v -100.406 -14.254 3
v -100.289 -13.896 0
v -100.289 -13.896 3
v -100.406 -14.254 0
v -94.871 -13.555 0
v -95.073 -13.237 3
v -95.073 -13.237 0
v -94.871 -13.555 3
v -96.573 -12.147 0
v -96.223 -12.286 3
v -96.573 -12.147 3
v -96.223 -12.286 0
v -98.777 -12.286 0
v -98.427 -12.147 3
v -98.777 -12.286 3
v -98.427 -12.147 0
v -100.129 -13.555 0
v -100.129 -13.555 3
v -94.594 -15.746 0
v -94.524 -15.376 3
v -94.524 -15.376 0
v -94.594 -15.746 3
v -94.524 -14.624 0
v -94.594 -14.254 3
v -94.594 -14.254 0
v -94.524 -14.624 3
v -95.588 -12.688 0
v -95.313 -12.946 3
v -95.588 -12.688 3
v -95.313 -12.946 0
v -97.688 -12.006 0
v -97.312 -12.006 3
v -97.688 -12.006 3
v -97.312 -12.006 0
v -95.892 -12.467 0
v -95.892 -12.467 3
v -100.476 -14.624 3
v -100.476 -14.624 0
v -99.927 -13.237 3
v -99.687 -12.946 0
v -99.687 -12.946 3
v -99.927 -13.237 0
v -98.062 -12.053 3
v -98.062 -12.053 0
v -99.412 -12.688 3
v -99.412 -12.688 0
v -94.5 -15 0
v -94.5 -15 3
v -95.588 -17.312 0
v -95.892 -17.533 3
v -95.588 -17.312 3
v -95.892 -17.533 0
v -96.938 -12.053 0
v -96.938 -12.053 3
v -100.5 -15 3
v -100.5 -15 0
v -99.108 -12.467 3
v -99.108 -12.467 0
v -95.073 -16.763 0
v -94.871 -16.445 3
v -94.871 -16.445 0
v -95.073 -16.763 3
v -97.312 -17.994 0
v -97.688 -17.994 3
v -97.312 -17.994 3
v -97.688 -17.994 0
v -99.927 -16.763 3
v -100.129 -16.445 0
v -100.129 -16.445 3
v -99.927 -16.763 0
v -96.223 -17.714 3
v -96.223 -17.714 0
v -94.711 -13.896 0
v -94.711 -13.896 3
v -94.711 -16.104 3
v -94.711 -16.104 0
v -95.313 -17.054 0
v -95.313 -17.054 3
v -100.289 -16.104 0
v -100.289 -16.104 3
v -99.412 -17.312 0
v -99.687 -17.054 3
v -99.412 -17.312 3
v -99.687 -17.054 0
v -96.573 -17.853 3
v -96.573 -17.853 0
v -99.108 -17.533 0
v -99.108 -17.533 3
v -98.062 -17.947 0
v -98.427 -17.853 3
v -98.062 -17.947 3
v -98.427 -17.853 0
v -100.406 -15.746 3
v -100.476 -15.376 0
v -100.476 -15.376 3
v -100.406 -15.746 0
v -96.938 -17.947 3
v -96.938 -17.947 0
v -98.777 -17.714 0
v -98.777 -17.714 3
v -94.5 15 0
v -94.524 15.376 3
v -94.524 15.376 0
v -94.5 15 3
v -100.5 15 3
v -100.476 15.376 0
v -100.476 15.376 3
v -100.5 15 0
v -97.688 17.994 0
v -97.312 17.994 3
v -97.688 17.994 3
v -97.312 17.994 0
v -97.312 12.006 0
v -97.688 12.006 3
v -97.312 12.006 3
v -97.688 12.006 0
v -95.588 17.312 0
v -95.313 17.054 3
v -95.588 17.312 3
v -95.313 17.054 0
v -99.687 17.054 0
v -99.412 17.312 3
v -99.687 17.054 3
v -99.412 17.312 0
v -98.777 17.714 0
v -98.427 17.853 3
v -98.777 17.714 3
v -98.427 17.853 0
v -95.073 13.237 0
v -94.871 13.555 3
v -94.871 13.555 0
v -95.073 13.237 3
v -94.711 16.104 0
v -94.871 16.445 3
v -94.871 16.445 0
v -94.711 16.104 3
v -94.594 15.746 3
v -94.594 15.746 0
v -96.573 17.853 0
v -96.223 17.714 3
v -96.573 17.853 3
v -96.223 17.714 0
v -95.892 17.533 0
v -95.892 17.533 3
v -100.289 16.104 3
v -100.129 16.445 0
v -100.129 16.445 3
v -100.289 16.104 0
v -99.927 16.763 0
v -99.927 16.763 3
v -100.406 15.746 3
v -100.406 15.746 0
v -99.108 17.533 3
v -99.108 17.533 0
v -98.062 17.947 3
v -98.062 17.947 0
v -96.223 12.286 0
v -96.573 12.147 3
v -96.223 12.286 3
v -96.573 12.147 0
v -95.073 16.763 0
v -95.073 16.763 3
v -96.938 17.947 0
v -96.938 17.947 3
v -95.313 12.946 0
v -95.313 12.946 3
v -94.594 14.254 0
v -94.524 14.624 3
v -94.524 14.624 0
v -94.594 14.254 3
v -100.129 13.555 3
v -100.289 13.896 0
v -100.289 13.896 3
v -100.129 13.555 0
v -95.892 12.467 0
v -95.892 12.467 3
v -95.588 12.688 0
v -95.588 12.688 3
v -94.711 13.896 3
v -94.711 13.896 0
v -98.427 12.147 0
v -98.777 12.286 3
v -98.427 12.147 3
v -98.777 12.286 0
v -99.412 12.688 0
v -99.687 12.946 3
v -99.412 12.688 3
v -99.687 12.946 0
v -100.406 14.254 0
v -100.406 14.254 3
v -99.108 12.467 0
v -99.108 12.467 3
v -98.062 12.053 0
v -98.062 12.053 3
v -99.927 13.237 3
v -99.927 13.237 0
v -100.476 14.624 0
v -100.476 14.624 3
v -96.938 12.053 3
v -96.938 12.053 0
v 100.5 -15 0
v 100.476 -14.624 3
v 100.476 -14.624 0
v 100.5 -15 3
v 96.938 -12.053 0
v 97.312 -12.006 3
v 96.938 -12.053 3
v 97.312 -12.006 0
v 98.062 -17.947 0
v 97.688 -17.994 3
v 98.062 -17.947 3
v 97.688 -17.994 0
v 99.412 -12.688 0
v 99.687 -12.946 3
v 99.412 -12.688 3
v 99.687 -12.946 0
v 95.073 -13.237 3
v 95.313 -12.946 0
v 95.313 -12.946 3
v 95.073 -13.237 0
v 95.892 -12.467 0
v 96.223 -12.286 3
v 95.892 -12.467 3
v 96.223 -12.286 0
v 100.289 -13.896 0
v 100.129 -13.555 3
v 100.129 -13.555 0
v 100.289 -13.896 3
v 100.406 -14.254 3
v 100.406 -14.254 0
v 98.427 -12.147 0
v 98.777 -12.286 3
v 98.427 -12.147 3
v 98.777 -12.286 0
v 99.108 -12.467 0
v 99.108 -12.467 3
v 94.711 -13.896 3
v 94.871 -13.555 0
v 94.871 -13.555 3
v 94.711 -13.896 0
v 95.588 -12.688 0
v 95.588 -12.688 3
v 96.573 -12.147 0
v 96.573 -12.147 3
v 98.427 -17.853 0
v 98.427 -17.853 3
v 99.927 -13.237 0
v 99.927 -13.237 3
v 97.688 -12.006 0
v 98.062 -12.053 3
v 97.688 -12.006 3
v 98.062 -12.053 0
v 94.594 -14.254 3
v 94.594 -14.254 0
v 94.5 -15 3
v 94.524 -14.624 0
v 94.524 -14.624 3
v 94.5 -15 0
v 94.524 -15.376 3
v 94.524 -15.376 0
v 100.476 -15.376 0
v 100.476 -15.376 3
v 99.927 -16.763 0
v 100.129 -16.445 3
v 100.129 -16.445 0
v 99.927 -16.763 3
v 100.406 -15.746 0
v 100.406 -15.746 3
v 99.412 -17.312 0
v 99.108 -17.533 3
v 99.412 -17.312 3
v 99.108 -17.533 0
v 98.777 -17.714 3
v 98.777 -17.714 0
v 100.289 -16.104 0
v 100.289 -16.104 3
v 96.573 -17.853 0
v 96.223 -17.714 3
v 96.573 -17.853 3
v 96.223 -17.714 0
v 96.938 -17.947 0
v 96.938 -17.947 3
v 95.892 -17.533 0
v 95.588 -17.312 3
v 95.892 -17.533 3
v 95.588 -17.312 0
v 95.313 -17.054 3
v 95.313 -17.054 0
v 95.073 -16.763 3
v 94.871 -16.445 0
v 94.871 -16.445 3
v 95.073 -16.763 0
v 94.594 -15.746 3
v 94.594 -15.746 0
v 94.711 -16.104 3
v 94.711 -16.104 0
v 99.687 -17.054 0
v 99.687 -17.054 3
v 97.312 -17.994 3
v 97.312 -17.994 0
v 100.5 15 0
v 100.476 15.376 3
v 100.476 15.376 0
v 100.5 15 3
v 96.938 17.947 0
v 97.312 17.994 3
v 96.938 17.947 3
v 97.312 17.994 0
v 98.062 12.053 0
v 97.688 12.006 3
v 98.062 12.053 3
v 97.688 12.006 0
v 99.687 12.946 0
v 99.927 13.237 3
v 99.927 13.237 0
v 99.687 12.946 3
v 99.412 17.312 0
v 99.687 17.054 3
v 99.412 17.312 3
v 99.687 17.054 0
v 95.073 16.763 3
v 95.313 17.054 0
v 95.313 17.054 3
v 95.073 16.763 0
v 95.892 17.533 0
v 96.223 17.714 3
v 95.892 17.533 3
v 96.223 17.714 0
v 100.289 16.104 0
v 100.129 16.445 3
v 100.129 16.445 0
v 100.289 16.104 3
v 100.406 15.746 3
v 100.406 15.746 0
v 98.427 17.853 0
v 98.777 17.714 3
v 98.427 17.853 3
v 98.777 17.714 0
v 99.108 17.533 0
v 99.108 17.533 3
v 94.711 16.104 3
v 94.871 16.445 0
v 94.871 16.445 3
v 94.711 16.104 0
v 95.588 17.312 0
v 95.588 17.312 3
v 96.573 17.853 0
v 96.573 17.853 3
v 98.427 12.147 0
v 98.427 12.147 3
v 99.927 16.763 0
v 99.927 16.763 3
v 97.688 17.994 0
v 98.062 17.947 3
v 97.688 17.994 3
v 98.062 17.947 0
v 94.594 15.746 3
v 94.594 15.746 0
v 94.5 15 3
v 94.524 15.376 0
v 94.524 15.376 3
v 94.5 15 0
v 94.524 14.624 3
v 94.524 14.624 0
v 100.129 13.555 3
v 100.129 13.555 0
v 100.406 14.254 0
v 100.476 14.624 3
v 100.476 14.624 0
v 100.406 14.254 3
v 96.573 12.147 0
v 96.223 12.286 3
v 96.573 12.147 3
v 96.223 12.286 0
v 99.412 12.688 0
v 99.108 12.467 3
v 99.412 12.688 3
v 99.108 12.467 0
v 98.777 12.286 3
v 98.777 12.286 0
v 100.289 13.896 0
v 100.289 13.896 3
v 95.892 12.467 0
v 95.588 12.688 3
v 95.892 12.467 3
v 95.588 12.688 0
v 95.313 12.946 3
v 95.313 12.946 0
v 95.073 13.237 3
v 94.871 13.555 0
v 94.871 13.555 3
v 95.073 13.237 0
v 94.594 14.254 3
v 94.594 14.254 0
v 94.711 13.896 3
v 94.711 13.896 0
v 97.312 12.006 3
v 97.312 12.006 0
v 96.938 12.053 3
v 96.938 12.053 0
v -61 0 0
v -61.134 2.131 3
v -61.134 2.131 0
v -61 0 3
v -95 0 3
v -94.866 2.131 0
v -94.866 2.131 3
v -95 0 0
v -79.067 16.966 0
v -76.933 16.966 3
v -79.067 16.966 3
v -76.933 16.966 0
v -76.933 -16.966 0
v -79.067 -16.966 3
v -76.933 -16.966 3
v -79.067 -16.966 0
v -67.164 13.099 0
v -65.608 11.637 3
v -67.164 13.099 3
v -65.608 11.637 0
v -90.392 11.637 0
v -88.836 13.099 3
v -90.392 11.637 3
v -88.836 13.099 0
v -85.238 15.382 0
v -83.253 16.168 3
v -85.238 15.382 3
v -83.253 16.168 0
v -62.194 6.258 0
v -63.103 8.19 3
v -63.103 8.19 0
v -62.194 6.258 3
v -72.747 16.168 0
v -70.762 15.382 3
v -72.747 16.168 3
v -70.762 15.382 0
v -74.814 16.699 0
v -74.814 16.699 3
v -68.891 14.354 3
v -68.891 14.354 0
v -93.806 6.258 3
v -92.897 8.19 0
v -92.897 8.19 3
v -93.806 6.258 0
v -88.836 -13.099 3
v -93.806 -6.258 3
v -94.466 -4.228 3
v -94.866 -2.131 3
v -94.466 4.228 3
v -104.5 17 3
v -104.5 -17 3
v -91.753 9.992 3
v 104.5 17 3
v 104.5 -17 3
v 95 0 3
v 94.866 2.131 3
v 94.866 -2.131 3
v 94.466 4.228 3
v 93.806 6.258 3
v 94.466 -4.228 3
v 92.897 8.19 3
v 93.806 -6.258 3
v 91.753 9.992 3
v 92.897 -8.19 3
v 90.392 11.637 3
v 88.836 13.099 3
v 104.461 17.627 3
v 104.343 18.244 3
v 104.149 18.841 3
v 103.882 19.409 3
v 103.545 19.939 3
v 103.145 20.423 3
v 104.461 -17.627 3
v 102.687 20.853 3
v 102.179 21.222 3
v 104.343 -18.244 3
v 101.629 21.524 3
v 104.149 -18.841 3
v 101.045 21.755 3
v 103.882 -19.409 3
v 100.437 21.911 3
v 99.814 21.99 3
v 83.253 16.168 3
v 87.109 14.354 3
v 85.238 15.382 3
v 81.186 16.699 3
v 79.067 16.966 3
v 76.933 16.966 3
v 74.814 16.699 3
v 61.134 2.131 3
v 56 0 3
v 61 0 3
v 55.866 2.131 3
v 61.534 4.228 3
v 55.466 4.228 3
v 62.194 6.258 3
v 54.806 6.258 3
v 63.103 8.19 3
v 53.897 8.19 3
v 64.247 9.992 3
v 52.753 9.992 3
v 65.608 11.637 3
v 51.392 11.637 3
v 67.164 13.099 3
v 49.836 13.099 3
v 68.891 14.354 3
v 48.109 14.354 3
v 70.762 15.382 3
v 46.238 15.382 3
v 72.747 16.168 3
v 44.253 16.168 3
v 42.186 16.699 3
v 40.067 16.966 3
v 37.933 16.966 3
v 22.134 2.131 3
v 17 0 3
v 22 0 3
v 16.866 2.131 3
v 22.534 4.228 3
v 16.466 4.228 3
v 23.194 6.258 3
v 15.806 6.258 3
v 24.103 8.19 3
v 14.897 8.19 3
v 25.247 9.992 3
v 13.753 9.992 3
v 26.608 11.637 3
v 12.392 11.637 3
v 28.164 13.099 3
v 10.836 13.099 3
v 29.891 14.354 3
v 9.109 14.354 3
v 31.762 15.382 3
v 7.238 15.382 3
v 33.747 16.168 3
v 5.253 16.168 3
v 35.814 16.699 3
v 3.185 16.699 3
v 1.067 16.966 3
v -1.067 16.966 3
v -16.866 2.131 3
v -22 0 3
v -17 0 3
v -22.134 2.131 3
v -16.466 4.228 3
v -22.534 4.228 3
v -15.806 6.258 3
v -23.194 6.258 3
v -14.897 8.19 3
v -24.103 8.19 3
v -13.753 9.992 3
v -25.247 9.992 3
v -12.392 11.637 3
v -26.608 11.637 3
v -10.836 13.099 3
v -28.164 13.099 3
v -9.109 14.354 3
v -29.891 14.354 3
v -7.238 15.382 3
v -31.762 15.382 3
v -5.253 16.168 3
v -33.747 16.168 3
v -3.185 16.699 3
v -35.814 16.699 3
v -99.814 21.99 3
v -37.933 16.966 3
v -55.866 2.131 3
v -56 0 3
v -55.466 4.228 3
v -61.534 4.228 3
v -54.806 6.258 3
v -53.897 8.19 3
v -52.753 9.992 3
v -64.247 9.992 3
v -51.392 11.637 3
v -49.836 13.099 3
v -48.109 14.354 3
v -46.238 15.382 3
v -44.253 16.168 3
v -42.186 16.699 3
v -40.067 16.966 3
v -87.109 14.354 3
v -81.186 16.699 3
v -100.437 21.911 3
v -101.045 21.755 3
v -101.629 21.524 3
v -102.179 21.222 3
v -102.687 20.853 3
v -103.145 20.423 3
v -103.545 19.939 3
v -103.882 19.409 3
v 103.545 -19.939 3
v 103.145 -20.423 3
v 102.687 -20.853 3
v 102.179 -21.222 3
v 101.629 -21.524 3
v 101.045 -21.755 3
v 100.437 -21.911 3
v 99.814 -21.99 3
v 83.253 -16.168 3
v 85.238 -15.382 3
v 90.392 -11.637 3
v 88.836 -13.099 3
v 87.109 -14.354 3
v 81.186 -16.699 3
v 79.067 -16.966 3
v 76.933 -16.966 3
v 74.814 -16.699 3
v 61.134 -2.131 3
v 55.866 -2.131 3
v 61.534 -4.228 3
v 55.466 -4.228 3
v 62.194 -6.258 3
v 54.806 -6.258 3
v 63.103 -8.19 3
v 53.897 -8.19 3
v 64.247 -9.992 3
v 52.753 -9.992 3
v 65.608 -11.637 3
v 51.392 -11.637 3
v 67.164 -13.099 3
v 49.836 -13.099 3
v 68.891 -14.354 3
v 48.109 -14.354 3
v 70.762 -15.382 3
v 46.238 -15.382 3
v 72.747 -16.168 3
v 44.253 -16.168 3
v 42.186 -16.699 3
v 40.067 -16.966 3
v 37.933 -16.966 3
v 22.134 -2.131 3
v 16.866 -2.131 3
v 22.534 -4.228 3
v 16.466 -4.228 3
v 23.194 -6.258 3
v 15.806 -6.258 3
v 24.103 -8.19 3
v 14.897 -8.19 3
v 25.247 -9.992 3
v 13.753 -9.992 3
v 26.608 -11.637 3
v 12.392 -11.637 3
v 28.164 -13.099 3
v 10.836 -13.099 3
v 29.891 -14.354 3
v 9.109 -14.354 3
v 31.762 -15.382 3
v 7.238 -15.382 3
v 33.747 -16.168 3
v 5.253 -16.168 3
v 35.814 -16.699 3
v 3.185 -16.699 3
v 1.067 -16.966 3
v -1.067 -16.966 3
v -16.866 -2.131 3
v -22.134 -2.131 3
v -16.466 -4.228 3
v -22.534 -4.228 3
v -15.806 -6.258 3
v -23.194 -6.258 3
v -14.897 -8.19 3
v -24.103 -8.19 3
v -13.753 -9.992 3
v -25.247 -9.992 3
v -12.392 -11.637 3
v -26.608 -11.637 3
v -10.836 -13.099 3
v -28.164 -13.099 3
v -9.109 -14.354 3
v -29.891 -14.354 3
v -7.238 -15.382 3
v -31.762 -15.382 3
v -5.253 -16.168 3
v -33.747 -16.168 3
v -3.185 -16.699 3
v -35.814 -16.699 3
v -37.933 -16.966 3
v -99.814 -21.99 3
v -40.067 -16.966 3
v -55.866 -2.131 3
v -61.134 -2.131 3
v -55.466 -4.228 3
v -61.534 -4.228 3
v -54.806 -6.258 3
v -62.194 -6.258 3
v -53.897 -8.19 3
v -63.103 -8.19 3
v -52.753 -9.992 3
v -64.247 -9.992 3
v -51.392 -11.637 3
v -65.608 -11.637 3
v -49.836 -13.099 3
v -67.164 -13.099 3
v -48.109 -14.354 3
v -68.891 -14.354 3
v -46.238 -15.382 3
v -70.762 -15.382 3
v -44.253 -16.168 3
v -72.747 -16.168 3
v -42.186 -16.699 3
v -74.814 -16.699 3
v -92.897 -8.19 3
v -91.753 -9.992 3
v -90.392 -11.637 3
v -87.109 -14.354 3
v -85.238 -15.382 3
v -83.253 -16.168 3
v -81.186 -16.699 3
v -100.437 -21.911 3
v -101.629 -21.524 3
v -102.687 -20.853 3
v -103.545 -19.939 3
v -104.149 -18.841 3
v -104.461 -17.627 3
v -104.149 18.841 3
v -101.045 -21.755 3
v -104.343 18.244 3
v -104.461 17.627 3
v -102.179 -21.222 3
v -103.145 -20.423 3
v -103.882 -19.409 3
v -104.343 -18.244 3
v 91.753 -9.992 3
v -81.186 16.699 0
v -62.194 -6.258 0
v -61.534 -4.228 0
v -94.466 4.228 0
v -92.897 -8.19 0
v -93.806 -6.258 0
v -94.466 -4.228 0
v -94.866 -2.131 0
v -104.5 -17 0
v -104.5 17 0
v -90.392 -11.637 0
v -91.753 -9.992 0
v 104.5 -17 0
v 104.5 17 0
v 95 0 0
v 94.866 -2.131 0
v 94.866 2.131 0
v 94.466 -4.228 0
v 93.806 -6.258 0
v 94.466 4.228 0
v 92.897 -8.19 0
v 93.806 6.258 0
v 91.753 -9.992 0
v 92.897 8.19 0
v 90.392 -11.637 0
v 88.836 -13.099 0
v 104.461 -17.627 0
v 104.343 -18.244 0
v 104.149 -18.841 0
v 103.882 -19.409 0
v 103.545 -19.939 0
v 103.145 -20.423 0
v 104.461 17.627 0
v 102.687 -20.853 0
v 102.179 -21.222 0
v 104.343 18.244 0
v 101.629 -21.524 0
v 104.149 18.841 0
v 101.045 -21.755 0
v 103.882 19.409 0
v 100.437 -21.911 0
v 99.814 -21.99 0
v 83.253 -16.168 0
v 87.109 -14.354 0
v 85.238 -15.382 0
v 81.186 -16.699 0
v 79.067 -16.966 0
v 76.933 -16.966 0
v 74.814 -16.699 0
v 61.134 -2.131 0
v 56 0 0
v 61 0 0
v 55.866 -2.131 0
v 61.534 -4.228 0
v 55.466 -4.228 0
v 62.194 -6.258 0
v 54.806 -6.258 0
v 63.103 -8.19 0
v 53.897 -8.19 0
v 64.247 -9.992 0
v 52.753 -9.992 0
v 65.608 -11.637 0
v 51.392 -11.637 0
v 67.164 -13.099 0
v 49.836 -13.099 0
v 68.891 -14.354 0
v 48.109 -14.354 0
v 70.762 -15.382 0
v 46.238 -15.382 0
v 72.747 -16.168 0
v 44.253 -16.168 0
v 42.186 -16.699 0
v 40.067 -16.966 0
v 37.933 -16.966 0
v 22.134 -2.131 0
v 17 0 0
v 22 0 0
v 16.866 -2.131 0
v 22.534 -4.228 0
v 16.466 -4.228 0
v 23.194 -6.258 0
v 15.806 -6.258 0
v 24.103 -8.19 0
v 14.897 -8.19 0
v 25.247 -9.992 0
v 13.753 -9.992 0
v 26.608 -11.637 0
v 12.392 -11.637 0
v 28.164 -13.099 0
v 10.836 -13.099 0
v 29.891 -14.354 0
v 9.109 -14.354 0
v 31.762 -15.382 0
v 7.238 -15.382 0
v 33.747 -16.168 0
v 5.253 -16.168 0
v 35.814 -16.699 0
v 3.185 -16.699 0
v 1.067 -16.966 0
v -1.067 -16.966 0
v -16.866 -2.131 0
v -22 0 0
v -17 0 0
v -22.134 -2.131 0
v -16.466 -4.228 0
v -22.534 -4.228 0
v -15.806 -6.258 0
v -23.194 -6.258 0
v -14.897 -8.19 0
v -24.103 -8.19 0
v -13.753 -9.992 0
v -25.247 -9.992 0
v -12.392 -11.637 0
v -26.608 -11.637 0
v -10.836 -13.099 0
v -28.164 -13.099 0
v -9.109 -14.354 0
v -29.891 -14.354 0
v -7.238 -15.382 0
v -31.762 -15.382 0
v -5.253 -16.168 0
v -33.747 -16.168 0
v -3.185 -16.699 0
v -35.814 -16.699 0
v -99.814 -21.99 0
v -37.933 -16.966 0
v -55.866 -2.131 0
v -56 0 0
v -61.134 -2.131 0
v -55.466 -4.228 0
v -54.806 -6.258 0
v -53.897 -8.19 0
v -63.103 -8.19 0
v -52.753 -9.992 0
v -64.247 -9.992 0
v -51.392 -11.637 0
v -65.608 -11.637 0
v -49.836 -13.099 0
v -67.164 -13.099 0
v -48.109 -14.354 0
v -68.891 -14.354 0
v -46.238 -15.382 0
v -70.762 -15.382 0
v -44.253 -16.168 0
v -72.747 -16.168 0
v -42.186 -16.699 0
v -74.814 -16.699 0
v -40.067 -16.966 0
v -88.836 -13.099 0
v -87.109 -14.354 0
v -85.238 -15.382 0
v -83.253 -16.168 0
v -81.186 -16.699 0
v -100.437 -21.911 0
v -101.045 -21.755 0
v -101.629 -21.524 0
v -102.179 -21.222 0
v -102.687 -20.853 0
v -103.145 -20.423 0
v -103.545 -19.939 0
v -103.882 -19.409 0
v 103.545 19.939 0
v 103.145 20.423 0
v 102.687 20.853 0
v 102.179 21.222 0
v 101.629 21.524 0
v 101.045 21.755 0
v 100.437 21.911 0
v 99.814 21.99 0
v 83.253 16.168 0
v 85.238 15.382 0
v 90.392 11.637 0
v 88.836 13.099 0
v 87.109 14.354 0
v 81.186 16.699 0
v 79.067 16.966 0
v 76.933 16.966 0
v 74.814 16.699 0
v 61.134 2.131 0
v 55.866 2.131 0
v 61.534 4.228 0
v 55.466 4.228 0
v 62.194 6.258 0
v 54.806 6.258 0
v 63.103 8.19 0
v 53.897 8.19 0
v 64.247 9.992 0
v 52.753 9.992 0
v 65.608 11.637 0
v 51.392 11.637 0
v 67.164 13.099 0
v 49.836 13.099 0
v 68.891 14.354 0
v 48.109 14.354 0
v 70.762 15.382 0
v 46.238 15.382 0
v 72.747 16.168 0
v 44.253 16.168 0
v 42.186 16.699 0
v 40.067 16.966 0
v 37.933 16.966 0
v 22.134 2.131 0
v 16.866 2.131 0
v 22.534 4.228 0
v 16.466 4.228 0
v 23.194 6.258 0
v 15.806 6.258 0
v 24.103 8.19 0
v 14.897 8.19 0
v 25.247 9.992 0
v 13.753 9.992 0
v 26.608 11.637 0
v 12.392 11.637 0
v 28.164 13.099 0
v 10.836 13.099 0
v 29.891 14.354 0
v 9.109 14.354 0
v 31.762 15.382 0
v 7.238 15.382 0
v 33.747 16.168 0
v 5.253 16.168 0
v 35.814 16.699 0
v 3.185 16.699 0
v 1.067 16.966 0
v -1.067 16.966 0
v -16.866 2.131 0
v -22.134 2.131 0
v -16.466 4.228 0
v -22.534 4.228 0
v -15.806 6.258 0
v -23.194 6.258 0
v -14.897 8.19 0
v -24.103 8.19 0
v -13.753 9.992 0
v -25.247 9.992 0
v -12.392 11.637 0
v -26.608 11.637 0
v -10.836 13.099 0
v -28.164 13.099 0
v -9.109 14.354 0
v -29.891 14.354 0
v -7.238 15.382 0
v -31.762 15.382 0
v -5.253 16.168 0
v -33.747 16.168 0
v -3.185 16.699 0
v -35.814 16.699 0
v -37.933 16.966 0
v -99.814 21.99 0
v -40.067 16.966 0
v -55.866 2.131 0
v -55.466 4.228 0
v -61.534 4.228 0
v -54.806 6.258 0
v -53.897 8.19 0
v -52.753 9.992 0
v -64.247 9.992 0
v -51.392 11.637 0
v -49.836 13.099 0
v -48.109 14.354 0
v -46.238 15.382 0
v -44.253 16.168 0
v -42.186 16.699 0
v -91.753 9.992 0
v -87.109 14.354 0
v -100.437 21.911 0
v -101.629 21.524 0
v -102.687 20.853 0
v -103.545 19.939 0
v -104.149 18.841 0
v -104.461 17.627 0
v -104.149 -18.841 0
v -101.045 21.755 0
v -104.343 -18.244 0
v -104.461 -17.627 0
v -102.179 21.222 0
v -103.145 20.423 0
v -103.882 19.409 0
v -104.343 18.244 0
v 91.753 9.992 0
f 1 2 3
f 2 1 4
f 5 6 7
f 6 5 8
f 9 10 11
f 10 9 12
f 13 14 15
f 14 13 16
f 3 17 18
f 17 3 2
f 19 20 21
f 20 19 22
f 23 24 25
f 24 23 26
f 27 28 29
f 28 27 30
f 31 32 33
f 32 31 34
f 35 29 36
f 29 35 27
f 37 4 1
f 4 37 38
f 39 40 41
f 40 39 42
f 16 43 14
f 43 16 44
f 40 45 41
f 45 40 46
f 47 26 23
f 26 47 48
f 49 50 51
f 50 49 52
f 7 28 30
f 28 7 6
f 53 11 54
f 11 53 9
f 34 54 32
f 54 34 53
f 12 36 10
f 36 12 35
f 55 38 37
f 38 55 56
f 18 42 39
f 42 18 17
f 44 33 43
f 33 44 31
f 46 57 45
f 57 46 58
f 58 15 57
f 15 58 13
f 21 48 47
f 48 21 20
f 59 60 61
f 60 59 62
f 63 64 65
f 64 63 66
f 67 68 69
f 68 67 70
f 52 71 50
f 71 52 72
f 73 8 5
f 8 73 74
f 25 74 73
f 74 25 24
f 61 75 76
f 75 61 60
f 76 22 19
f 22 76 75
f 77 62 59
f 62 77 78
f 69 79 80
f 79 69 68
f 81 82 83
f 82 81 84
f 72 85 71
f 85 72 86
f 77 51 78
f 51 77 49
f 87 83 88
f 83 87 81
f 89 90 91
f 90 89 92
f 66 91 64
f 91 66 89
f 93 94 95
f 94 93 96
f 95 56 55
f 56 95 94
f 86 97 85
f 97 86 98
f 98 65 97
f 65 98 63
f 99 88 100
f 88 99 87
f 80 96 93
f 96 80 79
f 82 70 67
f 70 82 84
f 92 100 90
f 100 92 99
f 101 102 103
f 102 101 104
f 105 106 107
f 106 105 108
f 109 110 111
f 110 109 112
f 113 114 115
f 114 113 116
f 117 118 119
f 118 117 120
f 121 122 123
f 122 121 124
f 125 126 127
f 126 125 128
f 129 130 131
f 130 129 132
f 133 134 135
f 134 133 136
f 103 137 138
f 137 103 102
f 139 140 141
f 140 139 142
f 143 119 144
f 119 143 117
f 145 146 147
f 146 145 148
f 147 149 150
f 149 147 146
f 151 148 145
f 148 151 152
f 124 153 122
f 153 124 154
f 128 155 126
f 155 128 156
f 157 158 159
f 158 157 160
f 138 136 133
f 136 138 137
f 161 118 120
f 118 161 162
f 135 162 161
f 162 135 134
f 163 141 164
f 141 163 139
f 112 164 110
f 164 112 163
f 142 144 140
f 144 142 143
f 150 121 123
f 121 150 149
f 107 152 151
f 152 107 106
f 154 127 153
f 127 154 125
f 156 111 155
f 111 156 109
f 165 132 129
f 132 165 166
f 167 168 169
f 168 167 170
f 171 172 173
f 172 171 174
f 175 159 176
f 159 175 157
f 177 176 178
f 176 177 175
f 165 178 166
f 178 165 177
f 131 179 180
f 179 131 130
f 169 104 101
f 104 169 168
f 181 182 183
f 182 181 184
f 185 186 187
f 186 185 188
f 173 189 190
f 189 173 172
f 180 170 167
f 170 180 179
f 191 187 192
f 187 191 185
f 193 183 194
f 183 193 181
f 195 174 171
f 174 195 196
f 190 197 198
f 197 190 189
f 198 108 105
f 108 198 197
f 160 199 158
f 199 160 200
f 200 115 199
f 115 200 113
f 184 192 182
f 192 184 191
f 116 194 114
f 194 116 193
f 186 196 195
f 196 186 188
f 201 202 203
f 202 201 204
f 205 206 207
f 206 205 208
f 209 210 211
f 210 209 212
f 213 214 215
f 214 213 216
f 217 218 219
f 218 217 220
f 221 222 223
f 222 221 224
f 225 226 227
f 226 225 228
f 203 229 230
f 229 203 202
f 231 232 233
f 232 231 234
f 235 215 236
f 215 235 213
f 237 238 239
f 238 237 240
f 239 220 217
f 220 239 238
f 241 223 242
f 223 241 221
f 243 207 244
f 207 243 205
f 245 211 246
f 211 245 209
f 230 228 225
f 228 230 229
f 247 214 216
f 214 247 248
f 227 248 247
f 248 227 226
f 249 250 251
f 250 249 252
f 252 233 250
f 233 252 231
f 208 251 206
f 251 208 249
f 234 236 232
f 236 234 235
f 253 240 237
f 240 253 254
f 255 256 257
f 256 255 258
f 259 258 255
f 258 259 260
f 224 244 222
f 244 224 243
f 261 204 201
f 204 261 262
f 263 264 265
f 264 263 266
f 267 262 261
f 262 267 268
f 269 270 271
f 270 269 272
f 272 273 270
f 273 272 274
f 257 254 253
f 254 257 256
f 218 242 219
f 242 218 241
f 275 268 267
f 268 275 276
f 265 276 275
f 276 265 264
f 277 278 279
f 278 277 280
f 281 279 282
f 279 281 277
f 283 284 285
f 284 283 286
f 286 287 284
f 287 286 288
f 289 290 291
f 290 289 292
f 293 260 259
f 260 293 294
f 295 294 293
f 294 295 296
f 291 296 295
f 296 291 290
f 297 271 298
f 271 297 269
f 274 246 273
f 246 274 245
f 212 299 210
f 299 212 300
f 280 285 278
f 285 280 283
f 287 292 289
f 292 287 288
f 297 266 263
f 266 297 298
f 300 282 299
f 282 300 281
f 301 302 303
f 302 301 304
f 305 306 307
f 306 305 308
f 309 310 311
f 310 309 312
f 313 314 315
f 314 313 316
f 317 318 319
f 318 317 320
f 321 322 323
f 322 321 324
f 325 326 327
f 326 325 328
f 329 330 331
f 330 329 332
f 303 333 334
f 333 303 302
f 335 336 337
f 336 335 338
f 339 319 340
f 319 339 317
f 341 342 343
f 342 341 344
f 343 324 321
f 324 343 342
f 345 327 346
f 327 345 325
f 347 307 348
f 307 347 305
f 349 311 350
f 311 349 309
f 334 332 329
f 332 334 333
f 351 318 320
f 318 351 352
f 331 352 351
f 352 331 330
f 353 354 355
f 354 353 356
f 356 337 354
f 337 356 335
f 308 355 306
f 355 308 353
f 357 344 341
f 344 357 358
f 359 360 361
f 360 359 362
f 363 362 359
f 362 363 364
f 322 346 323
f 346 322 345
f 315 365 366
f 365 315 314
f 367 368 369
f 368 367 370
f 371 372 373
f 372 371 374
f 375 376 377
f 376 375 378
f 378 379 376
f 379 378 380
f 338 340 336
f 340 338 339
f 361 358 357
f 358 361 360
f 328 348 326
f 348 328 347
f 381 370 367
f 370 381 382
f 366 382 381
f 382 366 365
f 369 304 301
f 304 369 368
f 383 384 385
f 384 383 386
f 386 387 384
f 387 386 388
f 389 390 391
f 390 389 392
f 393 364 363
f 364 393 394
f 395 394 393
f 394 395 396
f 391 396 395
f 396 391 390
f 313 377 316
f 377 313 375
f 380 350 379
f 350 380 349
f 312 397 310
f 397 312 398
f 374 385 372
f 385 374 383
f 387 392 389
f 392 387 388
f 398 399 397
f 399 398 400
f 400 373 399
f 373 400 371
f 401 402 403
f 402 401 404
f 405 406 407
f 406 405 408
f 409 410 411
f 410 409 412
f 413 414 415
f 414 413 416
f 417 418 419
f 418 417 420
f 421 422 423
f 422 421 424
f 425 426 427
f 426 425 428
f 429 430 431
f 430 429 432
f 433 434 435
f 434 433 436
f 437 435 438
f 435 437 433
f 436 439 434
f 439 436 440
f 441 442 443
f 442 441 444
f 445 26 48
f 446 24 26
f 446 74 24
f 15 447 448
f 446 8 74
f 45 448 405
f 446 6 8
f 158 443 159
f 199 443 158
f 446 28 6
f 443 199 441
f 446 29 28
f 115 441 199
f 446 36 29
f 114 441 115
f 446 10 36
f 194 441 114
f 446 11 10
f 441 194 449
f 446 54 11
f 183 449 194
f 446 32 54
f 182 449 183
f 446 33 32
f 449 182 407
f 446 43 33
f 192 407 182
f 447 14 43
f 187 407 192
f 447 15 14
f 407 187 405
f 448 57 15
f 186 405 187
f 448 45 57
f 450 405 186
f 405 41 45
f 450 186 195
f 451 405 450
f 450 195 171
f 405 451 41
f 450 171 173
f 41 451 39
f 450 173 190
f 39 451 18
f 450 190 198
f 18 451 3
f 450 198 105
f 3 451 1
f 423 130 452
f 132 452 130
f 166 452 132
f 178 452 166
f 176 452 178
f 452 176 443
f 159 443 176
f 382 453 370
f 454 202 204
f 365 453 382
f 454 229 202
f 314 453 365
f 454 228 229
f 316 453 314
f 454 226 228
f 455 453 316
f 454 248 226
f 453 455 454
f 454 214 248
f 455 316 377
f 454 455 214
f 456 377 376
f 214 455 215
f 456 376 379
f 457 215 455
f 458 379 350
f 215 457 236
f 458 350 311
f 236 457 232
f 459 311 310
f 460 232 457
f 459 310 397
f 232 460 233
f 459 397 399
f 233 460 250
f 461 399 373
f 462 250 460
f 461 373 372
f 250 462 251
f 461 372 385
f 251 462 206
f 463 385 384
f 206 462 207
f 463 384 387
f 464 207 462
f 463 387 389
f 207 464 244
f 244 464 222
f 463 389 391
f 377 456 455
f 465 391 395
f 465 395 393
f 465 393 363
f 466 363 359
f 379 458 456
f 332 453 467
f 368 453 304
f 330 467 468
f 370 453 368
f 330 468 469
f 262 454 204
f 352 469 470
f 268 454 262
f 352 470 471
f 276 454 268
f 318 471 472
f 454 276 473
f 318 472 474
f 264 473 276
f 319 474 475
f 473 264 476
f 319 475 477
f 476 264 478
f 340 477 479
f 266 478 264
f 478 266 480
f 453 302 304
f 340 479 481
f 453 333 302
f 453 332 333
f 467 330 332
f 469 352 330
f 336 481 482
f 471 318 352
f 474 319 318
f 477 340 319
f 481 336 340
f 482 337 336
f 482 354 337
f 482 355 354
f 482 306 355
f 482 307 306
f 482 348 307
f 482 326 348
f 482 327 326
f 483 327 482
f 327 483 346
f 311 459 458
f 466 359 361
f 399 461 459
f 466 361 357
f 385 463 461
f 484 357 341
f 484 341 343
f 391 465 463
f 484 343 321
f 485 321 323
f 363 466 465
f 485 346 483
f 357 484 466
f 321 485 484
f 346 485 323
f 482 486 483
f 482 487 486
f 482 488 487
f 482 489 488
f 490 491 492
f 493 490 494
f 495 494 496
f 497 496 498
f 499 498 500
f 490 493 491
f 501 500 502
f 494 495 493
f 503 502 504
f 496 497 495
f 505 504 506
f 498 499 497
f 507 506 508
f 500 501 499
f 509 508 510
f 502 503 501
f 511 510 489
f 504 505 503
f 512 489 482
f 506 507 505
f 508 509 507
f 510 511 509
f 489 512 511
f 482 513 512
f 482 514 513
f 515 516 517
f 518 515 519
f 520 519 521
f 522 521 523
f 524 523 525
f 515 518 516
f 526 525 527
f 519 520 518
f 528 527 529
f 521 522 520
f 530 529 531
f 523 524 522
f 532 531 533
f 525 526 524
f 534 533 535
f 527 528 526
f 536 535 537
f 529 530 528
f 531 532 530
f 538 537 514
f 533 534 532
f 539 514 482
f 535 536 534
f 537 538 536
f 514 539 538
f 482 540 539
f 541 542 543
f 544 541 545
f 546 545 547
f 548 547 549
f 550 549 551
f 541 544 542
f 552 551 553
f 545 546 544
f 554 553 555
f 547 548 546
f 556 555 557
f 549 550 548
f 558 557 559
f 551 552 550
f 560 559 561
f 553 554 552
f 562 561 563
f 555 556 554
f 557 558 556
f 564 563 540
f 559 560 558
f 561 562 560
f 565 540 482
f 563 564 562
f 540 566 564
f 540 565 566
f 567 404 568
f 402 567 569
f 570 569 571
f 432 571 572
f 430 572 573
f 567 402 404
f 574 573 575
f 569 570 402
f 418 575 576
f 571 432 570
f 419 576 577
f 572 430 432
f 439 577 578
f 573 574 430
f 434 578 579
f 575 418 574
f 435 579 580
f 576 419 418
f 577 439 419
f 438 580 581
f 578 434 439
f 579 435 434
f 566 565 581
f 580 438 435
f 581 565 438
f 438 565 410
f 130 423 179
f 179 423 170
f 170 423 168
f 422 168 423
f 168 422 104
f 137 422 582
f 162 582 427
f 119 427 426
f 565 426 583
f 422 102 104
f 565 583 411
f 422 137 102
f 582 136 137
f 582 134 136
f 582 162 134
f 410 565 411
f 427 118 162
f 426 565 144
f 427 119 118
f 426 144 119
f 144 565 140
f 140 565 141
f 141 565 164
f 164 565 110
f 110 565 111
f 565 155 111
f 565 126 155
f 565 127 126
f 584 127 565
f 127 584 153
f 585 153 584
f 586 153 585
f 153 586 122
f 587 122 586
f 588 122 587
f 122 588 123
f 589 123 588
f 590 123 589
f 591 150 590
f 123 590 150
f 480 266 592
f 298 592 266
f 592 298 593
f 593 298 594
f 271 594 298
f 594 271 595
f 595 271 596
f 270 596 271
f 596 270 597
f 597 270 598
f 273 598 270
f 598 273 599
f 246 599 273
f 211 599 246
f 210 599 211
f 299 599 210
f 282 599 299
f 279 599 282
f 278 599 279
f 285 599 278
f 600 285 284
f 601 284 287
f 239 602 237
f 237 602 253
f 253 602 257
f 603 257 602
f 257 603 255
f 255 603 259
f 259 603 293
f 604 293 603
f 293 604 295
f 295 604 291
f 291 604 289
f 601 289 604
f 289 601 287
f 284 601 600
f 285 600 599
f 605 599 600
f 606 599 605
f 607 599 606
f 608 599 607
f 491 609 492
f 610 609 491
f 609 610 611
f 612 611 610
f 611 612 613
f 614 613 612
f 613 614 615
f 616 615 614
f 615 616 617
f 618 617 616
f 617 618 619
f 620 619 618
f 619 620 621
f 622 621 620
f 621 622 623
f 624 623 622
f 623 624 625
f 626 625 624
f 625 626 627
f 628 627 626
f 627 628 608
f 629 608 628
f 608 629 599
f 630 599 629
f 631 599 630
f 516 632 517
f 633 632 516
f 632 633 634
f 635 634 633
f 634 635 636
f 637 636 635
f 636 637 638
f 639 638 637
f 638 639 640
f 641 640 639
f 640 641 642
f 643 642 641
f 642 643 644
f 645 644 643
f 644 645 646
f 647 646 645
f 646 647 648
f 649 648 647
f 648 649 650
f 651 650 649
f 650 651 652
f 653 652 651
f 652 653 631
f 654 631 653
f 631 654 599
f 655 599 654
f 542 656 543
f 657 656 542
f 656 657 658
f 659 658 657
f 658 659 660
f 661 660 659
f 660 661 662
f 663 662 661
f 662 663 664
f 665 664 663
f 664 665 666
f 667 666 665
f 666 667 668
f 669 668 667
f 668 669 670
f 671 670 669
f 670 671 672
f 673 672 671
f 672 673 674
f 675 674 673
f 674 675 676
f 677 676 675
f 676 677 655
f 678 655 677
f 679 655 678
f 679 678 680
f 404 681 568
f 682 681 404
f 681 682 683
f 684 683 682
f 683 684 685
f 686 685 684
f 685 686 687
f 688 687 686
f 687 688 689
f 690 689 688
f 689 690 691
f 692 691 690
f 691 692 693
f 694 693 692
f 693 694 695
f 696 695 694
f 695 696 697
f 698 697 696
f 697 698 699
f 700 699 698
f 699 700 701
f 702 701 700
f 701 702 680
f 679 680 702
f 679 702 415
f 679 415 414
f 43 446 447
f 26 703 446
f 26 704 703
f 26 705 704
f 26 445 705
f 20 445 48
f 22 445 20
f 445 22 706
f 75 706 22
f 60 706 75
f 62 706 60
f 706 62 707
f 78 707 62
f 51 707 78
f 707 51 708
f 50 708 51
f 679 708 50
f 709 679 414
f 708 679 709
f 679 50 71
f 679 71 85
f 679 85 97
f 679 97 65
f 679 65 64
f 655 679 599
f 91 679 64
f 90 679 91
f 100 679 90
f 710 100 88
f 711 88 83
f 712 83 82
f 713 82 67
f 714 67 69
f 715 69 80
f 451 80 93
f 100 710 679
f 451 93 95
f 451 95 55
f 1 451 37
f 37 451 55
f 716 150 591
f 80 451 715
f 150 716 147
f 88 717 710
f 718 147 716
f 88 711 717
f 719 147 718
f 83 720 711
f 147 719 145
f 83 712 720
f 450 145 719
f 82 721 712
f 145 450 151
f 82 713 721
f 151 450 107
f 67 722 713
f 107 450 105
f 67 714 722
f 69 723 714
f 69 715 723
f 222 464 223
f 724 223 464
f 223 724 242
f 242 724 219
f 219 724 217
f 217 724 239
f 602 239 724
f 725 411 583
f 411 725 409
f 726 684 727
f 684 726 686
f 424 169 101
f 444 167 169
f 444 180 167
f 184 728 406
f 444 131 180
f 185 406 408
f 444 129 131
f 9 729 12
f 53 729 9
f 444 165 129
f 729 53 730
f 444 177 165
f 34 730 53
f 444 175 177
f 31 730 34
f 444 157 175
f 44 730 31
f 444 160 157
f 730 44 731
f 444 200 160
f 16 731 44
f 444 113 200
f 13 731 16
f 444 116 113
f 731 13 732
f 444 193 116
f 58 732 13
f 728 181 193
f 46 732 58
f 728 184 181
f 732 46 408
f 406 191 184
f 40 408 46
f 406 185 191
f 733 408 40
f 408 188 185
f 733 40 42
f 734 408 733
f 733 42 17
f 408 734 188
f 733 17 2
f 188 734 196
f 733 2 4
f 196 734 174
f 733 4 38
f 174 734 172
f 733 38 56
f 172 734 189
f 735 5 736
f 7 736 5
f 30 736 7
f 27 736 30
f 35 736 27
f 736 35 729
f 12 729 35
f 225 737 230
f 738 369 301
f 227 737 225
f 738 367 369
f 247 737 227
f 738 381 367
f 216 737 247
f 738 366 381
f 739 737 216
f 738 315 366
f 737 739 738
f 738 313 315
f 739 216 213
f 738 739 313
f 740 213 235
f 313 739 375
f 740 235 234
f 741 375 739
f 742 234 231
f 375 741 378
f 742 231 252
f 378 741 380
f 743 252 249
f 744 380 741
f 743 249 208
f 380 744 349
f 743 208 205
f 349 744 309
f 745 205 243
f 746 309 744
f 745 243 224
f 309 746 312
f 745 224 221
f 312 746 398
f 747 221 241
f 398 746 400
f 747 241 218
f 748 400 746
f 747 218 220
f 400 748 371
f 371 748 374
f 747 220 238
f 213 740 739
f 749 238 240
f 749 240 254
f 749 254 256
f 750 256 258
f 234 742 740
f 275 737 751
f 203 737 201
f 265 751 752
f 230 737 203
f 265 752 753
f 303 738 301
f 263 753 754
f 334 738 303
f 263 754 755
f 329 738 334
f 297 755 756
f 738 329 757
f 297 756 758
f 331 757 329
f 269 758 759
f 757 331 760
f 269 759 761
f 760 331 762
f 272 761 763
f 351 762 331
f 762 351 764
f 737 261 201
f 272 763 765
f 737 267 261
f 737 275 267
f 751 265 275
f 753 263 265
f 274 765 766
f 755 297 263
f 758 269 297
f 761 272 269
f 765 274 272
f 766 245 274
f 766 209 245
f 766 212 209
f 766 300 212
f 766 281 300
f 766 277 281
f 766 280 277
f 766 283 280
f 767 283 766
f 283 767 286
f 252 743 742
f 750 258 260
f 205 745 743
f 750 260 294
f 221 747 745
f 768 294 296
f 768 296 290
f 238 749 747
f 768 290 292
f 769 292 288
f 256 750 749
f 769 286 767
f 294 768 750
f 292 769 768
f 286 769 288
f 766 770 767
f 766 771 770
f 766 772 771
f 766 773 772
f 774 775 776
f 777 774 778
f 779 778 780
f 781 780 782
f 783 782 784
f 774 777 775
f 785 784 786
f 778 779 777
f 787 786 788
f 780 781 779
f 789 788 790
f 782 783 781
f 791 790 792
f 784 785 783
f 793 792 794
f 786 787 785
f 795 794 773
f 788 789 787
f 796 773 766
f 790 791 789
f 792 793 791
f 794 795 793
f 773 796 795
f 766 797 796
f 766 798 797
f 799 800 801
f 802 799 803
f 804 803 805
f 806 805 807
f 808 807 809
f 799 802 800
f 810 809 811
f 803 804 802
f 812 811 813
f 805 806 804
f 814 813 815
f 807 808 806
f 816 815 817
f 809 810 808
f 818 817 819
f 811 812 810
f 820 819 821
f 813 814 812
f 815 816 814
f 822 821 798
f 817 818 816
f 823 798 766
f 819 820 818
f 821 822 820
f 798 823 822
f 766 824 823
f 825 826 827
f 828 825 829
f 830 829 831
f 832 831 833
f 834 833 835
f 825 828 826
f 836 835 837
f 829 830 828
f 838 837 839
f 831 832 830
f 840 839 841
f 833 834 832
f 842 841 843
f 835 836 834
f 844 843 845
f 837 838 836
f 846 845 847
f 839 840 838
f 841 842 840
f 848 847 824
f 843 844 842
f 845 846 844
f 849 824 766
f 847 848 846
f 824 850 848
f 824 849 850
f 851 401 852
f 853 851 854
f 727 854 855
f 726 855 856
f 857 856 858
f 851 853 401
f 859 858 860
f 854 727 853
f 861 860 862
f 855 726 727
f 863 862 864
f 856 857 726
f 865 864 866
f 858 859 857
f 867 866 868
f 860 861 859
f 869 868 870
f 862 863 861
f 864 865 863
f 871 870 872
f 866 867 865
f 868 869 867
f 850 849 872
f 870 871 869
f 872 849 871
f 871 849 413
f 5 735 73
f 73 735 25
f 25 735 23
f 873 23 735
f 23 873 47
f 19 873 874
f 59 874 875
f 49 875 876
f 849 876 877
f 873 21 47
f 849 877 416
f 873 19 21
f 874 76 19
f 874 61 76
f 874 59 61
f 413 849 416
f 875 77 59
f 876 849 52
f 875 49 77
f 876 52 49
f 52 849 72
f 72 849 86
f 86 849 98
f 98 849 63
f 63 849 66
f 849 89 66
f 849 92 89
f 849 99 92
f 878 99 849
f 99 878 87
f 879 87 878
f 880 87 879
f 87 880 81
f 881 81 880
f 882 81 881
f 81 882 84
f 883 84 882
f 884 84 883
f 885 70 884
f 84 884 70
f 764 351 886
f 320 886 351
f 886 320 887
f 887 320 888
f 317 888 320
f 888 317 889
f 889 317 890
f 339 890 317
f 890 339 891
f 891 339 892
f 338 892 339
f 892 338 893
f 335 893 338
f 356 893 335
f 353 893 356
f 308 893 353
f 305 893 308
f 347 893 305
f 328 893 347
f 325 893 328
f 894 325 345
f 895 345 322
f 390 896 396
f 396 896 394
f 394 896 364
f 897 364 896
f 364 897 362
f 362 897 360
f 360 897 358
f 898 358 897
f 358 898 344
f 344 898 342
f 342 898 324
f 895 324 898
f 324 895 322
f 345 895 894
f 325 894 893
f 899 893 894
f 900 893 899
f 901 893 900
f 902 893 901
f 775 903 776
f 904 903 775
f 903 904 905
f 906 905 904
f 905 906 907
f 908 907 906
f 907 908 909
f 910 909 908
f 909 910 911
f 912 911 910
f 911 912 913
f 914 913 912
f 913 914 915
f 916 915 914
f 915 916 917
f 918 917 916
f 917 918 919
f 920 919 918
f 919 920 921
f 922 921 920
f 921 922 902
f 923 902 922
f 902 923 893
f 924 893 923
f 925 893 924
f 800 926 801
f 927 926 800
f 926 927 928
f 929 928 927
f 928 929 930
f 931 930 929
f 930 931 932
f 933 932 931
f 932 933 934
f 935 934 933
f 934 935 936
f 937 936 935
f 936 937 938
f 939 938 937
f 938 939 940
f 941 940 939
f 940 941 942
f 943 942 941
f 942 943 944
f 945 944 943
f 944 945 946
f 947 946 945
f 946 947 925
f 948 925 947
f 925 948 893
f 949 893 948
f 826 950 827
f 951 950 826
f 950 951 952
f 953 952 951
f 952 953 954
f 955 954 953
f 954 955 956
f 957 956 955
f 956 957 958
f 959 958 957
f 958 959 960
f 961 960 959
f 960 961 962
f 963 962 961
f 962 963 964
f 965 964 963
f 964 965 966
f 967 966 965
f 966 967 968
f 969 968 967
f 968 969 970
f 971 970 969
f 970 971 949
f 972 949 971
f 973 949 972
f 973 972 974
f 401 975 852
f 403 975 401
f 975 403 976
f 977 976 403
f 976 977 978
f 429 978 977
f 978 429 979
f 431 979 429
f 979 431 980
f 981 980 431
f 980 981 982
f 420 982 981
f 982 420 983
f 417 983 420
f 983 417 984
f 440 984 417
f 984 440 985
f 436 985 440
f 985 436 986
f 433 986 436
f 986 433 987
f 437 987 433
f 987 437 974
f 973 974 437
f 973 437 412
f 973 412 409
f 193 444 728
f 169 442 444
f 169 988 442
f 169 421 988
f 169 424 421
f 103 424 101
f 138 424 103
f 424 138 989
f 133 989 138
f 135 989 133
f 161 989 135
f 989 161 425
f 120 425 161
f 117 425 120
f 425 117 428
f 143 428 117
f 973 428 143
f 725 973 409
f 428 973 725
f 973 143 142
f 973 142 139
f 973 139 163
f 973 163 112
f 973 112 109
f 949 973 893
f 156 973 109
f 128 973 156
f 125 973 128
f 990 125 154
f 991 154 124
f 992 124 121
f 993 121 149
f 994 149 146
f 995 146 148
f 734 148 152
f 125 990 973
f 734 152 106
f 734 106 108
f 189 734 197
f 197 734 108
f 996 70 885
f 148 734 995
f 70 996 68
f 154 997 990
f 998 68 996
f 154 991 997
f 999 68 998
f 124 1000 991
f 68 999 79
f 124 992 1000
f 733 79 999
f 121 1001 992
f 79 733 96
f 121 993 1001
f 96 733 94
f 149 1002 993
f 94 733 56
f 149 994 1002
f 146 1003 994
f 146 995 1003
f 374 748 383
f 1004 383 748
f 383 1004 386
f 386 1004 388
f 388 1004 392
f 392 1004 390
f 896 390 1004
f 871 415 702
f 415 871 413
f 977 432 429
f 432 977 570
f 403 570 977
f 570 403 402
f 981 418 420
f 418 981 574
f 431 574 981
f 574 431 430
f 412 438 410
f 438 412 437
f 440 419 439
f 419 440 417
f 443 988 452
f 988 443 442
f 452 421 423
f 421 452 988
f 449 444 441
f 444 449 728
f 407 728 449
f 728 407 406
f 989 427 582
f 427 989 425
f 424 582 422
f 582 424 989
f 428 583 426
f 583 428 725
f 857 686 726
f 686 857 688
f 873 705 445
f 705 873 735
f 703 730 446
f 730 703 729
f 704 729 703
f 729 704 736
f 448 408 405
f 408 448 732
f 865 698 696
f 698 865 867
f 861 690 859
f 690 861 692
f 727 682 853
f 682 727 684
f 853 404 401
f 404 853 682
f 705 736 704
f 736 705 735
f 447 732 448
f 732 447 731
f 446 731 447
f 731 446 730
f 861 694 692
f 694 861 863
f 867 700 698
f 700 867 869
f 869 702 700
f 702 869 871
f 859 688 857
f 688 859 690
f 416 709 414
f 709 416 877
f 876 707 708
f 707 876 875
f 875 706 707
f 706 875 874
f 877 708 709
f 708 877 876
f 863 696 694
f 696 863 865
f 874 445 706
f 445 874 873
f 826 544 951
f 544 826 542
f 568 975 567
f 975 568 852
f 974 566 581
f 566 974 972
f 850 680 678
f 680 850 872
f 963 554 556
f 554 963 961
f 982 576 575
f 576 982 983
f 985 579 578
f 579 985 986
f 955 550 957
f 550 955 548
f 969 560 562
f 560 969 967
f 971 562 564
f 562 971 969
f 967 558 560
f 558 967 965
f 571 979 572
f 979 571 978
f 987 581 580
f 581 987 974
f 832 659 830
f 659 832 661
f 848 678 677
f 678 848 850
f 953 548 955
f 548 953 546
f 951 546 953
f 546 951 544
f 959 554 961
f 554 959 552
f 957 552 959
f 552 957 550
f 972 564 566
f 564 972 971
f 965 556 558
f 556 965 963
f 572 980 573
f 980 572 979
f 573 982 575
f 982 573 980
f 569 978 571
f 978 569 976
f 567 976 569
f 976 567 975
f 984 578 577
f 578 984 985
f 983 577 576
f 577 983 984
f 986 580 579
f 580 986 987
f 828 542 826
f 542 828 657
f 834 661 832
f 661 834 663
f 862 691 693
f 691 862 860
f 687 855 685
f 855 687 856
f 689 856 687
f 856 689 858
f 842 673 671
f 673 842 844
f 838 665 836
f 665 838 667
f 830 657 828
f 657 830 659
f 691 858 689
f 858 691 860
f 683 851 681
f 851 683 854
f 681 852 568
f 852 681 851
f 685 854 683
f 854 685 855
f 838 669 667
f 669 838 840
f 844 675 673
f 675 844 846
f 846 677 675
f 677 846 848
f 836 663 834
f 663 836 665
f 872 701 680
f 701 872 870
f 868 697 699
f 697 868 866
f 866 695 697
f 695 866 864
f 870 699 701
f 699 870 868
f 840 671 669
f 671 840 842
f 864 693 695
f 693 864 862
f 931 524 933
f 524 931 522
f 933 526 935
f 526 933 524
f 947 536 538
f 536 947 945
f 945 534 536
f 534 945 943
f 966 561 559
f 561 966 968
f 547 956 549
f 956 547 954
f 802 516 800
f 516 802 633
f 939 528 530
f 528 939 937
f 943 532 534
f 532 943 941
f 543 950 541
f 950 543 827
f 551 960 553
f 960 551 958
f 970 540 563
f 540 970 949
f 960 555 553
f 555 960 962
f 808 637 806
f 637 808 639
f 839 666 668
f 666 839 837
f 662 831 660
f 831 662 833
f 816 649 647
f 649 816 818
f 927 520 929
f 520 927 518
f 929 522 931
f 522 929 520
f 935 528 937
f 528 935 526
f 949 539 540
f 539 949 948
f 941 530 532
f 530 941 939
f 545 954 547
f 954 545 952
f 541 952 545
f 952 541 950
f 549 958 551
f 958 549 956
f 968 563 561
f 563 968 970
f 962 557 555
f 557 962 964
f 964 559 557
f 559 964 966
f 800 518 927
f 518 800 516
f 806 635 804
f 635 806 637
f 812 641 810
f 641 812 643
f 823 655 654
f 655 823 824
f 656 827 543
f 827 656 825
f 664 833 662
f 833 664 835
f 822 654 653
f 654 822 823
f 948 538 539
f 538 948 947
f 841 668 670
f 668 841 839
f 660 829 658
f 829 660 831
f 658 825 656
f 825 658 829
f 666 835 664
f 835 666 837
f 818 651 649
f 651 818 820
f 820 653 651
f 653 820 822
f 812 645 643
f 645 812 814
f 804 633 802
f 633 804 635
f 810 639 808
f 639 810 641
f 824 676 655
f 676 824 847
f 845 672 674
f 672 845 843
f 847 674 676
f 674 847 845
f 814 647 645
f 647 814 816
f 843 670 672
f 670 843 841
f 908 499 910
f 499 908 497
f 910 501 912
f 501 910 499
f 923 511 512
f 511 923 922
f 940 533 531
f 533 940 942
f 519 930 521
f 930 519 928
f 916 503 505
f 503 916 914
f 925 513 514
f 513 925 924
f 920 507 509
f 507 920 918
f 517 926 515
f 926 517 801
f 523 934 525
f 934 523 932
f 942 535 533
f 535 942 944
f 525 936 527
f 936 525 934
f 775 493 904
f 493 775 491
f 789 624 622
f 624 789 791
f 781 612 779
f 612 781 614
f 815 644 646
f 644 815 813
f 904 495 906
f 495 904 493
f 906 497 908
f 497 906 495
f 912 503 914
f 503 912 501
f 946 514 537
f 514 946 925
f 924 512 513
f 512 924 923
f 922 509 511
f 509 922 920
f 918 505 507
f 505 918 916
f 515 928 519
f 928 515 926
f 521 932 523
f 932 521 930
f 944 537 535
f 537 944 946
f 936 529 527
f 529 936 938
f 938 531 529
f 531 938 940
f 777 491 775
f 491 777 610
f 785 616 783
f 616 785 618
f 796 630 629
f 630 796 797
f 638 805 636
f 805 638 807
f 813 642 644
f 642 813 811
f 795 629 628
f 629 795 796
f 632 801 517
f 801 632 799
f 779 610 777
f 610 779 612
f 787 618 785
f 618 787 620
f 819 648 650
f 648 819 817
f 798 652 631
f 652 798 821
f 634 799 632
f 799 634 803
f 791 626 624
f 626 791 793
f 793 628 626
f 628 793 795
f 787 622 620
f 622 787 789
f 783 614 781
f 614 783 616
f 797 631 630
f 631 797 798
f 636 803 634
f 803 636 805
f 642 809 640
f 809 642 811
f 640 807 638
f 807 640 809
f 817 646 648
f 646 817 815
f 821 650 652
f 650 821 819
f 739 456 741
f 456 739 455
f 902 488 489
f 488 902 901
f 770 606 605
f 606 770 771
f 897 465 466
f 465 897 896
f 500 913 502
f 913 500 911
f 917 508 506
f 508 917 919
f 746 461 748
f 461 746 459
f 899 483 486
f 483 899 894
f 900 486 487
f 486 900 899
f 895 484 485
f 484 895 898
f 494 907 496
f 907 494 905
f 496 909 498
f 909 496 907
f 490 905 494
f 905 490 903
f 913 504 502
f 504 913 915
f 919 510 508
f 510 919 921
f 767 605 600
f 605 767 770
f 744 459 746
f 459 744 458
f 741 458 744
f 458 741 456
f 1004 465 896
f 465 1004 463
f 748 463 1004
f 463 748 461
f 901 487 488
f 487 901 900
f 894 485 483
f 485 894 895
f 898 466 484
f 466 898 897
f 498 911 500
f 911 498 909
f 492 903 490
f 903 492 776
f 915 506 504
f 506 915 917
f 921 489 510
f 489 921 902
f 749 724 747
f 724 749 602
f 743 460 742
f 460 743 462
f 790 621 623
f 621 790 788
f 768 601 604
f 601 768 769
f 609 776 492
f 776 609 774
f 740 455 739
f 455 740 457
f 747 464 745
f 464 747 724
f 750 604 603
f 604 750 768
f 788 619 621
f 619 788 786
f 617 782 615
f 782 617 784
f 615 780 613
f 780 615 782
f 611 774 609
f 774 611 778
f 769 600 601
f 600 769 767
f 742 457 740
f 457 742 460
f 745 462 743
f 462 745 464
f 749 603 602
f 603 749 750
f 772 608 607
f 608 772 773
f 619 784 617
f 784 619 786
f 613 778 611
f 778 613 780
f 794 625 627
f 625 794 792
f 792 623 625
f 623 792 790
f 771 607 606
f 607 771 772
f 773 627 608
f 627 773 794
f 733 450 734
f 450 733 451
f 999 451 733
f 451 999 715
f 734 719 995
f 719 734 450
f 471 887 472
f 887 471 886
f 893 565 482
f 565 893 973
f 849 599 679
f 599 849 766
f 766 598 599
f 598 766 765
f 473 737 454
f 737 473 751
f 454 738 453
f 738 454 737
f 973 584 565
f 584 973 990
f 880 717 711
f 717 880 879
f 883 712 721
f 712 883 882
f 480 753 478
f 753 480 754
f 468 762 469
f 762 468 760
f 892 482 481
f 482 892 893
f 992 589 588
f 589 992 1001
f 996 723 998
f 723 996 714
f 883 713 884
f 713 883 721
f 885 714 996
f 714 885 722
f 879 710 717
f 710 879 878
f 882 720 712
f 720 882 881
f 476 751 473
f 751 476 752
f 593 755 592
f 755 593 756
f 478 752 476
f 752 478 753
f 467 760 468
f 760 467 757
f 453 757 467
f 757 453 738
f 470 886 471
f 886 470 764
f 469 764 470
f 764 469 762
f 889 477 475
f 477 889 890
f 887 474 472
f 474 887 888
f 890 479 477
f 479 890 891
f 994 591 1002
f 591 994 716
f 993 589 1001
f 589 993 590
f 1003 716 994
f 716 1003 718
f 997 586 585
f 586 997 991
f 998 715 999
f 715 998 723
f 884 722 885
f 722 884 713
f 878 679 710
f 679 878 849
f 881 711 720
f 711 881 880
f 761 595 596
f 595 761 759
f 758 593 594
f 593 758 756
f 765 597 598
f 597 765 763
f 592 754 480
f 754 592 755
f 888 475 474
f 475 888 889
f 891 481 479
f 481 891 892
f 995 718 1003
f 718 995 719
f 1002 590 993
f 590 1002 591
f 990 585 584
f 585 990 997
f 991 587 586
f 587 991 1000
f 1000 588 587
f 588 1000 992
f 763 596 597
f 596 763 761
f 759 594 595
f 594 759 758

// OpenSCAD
$fn = 50;


difference() {
	union() {
		hull() {
			translate(v = [-99.5000000000, 17.0000000000, 0]) {
				cylinder(h = 3, r = 5);
			}
			translate(v = [99.5000000000, 17.0000000000, 0]) {
				cylinder(h = 3, r = 5);
			}
			translate(v = [-99.5000000000, -17.0000000000, 0]) {
				cylinder(h = 3, r = 5);
			}
			translate(v = [99.5000000000, -17.0000000000, 0]) {
				cylinder(h = 3, r = 5);
			}
		}
	}
	union() {
		#translate(v = [-97.5000000000, -15.0000000000, -100.0000000000]) {
			cylinder(h = 200, r = 3.0000000000);
		}
		#translate(v = [-97.5000000000, 15.0000000000, -100.0000000000]) {
			cylinder(h = 200, r = 3.0000000000);
		}
		#translate(v = [97.5000000000, -15.0000000000, -100.0000000000]) {
			cylinder(h = 200, r = 3.0000000000);
		}
		#translate(v = [97.5000000000, 15.0000000000, -100.0000000000]) {
			cylinder(h = 200, r = 3.0000000000);
		}
		#translate(v = [-78.0000000000, 0, 0]) {
			cylinder(h = 3, r = 17.0000000000);
		}
		#translate(v = [-39.0000000000, 0, 0]) {
			cylinder(h = 3, r = 17.0000000000);
		}
		#cylinder(h = 3, r = 17.0000000000);
		#translate(v = [39.0000000000, 0, 0]) {
			cylinder(h = 3, r = 17.0000000000);
		}
		#translate(v = [78.0000000000, 0, 0]) {
			cylinder(h = 3, r = 17.0000000000);
		}
	}
}
